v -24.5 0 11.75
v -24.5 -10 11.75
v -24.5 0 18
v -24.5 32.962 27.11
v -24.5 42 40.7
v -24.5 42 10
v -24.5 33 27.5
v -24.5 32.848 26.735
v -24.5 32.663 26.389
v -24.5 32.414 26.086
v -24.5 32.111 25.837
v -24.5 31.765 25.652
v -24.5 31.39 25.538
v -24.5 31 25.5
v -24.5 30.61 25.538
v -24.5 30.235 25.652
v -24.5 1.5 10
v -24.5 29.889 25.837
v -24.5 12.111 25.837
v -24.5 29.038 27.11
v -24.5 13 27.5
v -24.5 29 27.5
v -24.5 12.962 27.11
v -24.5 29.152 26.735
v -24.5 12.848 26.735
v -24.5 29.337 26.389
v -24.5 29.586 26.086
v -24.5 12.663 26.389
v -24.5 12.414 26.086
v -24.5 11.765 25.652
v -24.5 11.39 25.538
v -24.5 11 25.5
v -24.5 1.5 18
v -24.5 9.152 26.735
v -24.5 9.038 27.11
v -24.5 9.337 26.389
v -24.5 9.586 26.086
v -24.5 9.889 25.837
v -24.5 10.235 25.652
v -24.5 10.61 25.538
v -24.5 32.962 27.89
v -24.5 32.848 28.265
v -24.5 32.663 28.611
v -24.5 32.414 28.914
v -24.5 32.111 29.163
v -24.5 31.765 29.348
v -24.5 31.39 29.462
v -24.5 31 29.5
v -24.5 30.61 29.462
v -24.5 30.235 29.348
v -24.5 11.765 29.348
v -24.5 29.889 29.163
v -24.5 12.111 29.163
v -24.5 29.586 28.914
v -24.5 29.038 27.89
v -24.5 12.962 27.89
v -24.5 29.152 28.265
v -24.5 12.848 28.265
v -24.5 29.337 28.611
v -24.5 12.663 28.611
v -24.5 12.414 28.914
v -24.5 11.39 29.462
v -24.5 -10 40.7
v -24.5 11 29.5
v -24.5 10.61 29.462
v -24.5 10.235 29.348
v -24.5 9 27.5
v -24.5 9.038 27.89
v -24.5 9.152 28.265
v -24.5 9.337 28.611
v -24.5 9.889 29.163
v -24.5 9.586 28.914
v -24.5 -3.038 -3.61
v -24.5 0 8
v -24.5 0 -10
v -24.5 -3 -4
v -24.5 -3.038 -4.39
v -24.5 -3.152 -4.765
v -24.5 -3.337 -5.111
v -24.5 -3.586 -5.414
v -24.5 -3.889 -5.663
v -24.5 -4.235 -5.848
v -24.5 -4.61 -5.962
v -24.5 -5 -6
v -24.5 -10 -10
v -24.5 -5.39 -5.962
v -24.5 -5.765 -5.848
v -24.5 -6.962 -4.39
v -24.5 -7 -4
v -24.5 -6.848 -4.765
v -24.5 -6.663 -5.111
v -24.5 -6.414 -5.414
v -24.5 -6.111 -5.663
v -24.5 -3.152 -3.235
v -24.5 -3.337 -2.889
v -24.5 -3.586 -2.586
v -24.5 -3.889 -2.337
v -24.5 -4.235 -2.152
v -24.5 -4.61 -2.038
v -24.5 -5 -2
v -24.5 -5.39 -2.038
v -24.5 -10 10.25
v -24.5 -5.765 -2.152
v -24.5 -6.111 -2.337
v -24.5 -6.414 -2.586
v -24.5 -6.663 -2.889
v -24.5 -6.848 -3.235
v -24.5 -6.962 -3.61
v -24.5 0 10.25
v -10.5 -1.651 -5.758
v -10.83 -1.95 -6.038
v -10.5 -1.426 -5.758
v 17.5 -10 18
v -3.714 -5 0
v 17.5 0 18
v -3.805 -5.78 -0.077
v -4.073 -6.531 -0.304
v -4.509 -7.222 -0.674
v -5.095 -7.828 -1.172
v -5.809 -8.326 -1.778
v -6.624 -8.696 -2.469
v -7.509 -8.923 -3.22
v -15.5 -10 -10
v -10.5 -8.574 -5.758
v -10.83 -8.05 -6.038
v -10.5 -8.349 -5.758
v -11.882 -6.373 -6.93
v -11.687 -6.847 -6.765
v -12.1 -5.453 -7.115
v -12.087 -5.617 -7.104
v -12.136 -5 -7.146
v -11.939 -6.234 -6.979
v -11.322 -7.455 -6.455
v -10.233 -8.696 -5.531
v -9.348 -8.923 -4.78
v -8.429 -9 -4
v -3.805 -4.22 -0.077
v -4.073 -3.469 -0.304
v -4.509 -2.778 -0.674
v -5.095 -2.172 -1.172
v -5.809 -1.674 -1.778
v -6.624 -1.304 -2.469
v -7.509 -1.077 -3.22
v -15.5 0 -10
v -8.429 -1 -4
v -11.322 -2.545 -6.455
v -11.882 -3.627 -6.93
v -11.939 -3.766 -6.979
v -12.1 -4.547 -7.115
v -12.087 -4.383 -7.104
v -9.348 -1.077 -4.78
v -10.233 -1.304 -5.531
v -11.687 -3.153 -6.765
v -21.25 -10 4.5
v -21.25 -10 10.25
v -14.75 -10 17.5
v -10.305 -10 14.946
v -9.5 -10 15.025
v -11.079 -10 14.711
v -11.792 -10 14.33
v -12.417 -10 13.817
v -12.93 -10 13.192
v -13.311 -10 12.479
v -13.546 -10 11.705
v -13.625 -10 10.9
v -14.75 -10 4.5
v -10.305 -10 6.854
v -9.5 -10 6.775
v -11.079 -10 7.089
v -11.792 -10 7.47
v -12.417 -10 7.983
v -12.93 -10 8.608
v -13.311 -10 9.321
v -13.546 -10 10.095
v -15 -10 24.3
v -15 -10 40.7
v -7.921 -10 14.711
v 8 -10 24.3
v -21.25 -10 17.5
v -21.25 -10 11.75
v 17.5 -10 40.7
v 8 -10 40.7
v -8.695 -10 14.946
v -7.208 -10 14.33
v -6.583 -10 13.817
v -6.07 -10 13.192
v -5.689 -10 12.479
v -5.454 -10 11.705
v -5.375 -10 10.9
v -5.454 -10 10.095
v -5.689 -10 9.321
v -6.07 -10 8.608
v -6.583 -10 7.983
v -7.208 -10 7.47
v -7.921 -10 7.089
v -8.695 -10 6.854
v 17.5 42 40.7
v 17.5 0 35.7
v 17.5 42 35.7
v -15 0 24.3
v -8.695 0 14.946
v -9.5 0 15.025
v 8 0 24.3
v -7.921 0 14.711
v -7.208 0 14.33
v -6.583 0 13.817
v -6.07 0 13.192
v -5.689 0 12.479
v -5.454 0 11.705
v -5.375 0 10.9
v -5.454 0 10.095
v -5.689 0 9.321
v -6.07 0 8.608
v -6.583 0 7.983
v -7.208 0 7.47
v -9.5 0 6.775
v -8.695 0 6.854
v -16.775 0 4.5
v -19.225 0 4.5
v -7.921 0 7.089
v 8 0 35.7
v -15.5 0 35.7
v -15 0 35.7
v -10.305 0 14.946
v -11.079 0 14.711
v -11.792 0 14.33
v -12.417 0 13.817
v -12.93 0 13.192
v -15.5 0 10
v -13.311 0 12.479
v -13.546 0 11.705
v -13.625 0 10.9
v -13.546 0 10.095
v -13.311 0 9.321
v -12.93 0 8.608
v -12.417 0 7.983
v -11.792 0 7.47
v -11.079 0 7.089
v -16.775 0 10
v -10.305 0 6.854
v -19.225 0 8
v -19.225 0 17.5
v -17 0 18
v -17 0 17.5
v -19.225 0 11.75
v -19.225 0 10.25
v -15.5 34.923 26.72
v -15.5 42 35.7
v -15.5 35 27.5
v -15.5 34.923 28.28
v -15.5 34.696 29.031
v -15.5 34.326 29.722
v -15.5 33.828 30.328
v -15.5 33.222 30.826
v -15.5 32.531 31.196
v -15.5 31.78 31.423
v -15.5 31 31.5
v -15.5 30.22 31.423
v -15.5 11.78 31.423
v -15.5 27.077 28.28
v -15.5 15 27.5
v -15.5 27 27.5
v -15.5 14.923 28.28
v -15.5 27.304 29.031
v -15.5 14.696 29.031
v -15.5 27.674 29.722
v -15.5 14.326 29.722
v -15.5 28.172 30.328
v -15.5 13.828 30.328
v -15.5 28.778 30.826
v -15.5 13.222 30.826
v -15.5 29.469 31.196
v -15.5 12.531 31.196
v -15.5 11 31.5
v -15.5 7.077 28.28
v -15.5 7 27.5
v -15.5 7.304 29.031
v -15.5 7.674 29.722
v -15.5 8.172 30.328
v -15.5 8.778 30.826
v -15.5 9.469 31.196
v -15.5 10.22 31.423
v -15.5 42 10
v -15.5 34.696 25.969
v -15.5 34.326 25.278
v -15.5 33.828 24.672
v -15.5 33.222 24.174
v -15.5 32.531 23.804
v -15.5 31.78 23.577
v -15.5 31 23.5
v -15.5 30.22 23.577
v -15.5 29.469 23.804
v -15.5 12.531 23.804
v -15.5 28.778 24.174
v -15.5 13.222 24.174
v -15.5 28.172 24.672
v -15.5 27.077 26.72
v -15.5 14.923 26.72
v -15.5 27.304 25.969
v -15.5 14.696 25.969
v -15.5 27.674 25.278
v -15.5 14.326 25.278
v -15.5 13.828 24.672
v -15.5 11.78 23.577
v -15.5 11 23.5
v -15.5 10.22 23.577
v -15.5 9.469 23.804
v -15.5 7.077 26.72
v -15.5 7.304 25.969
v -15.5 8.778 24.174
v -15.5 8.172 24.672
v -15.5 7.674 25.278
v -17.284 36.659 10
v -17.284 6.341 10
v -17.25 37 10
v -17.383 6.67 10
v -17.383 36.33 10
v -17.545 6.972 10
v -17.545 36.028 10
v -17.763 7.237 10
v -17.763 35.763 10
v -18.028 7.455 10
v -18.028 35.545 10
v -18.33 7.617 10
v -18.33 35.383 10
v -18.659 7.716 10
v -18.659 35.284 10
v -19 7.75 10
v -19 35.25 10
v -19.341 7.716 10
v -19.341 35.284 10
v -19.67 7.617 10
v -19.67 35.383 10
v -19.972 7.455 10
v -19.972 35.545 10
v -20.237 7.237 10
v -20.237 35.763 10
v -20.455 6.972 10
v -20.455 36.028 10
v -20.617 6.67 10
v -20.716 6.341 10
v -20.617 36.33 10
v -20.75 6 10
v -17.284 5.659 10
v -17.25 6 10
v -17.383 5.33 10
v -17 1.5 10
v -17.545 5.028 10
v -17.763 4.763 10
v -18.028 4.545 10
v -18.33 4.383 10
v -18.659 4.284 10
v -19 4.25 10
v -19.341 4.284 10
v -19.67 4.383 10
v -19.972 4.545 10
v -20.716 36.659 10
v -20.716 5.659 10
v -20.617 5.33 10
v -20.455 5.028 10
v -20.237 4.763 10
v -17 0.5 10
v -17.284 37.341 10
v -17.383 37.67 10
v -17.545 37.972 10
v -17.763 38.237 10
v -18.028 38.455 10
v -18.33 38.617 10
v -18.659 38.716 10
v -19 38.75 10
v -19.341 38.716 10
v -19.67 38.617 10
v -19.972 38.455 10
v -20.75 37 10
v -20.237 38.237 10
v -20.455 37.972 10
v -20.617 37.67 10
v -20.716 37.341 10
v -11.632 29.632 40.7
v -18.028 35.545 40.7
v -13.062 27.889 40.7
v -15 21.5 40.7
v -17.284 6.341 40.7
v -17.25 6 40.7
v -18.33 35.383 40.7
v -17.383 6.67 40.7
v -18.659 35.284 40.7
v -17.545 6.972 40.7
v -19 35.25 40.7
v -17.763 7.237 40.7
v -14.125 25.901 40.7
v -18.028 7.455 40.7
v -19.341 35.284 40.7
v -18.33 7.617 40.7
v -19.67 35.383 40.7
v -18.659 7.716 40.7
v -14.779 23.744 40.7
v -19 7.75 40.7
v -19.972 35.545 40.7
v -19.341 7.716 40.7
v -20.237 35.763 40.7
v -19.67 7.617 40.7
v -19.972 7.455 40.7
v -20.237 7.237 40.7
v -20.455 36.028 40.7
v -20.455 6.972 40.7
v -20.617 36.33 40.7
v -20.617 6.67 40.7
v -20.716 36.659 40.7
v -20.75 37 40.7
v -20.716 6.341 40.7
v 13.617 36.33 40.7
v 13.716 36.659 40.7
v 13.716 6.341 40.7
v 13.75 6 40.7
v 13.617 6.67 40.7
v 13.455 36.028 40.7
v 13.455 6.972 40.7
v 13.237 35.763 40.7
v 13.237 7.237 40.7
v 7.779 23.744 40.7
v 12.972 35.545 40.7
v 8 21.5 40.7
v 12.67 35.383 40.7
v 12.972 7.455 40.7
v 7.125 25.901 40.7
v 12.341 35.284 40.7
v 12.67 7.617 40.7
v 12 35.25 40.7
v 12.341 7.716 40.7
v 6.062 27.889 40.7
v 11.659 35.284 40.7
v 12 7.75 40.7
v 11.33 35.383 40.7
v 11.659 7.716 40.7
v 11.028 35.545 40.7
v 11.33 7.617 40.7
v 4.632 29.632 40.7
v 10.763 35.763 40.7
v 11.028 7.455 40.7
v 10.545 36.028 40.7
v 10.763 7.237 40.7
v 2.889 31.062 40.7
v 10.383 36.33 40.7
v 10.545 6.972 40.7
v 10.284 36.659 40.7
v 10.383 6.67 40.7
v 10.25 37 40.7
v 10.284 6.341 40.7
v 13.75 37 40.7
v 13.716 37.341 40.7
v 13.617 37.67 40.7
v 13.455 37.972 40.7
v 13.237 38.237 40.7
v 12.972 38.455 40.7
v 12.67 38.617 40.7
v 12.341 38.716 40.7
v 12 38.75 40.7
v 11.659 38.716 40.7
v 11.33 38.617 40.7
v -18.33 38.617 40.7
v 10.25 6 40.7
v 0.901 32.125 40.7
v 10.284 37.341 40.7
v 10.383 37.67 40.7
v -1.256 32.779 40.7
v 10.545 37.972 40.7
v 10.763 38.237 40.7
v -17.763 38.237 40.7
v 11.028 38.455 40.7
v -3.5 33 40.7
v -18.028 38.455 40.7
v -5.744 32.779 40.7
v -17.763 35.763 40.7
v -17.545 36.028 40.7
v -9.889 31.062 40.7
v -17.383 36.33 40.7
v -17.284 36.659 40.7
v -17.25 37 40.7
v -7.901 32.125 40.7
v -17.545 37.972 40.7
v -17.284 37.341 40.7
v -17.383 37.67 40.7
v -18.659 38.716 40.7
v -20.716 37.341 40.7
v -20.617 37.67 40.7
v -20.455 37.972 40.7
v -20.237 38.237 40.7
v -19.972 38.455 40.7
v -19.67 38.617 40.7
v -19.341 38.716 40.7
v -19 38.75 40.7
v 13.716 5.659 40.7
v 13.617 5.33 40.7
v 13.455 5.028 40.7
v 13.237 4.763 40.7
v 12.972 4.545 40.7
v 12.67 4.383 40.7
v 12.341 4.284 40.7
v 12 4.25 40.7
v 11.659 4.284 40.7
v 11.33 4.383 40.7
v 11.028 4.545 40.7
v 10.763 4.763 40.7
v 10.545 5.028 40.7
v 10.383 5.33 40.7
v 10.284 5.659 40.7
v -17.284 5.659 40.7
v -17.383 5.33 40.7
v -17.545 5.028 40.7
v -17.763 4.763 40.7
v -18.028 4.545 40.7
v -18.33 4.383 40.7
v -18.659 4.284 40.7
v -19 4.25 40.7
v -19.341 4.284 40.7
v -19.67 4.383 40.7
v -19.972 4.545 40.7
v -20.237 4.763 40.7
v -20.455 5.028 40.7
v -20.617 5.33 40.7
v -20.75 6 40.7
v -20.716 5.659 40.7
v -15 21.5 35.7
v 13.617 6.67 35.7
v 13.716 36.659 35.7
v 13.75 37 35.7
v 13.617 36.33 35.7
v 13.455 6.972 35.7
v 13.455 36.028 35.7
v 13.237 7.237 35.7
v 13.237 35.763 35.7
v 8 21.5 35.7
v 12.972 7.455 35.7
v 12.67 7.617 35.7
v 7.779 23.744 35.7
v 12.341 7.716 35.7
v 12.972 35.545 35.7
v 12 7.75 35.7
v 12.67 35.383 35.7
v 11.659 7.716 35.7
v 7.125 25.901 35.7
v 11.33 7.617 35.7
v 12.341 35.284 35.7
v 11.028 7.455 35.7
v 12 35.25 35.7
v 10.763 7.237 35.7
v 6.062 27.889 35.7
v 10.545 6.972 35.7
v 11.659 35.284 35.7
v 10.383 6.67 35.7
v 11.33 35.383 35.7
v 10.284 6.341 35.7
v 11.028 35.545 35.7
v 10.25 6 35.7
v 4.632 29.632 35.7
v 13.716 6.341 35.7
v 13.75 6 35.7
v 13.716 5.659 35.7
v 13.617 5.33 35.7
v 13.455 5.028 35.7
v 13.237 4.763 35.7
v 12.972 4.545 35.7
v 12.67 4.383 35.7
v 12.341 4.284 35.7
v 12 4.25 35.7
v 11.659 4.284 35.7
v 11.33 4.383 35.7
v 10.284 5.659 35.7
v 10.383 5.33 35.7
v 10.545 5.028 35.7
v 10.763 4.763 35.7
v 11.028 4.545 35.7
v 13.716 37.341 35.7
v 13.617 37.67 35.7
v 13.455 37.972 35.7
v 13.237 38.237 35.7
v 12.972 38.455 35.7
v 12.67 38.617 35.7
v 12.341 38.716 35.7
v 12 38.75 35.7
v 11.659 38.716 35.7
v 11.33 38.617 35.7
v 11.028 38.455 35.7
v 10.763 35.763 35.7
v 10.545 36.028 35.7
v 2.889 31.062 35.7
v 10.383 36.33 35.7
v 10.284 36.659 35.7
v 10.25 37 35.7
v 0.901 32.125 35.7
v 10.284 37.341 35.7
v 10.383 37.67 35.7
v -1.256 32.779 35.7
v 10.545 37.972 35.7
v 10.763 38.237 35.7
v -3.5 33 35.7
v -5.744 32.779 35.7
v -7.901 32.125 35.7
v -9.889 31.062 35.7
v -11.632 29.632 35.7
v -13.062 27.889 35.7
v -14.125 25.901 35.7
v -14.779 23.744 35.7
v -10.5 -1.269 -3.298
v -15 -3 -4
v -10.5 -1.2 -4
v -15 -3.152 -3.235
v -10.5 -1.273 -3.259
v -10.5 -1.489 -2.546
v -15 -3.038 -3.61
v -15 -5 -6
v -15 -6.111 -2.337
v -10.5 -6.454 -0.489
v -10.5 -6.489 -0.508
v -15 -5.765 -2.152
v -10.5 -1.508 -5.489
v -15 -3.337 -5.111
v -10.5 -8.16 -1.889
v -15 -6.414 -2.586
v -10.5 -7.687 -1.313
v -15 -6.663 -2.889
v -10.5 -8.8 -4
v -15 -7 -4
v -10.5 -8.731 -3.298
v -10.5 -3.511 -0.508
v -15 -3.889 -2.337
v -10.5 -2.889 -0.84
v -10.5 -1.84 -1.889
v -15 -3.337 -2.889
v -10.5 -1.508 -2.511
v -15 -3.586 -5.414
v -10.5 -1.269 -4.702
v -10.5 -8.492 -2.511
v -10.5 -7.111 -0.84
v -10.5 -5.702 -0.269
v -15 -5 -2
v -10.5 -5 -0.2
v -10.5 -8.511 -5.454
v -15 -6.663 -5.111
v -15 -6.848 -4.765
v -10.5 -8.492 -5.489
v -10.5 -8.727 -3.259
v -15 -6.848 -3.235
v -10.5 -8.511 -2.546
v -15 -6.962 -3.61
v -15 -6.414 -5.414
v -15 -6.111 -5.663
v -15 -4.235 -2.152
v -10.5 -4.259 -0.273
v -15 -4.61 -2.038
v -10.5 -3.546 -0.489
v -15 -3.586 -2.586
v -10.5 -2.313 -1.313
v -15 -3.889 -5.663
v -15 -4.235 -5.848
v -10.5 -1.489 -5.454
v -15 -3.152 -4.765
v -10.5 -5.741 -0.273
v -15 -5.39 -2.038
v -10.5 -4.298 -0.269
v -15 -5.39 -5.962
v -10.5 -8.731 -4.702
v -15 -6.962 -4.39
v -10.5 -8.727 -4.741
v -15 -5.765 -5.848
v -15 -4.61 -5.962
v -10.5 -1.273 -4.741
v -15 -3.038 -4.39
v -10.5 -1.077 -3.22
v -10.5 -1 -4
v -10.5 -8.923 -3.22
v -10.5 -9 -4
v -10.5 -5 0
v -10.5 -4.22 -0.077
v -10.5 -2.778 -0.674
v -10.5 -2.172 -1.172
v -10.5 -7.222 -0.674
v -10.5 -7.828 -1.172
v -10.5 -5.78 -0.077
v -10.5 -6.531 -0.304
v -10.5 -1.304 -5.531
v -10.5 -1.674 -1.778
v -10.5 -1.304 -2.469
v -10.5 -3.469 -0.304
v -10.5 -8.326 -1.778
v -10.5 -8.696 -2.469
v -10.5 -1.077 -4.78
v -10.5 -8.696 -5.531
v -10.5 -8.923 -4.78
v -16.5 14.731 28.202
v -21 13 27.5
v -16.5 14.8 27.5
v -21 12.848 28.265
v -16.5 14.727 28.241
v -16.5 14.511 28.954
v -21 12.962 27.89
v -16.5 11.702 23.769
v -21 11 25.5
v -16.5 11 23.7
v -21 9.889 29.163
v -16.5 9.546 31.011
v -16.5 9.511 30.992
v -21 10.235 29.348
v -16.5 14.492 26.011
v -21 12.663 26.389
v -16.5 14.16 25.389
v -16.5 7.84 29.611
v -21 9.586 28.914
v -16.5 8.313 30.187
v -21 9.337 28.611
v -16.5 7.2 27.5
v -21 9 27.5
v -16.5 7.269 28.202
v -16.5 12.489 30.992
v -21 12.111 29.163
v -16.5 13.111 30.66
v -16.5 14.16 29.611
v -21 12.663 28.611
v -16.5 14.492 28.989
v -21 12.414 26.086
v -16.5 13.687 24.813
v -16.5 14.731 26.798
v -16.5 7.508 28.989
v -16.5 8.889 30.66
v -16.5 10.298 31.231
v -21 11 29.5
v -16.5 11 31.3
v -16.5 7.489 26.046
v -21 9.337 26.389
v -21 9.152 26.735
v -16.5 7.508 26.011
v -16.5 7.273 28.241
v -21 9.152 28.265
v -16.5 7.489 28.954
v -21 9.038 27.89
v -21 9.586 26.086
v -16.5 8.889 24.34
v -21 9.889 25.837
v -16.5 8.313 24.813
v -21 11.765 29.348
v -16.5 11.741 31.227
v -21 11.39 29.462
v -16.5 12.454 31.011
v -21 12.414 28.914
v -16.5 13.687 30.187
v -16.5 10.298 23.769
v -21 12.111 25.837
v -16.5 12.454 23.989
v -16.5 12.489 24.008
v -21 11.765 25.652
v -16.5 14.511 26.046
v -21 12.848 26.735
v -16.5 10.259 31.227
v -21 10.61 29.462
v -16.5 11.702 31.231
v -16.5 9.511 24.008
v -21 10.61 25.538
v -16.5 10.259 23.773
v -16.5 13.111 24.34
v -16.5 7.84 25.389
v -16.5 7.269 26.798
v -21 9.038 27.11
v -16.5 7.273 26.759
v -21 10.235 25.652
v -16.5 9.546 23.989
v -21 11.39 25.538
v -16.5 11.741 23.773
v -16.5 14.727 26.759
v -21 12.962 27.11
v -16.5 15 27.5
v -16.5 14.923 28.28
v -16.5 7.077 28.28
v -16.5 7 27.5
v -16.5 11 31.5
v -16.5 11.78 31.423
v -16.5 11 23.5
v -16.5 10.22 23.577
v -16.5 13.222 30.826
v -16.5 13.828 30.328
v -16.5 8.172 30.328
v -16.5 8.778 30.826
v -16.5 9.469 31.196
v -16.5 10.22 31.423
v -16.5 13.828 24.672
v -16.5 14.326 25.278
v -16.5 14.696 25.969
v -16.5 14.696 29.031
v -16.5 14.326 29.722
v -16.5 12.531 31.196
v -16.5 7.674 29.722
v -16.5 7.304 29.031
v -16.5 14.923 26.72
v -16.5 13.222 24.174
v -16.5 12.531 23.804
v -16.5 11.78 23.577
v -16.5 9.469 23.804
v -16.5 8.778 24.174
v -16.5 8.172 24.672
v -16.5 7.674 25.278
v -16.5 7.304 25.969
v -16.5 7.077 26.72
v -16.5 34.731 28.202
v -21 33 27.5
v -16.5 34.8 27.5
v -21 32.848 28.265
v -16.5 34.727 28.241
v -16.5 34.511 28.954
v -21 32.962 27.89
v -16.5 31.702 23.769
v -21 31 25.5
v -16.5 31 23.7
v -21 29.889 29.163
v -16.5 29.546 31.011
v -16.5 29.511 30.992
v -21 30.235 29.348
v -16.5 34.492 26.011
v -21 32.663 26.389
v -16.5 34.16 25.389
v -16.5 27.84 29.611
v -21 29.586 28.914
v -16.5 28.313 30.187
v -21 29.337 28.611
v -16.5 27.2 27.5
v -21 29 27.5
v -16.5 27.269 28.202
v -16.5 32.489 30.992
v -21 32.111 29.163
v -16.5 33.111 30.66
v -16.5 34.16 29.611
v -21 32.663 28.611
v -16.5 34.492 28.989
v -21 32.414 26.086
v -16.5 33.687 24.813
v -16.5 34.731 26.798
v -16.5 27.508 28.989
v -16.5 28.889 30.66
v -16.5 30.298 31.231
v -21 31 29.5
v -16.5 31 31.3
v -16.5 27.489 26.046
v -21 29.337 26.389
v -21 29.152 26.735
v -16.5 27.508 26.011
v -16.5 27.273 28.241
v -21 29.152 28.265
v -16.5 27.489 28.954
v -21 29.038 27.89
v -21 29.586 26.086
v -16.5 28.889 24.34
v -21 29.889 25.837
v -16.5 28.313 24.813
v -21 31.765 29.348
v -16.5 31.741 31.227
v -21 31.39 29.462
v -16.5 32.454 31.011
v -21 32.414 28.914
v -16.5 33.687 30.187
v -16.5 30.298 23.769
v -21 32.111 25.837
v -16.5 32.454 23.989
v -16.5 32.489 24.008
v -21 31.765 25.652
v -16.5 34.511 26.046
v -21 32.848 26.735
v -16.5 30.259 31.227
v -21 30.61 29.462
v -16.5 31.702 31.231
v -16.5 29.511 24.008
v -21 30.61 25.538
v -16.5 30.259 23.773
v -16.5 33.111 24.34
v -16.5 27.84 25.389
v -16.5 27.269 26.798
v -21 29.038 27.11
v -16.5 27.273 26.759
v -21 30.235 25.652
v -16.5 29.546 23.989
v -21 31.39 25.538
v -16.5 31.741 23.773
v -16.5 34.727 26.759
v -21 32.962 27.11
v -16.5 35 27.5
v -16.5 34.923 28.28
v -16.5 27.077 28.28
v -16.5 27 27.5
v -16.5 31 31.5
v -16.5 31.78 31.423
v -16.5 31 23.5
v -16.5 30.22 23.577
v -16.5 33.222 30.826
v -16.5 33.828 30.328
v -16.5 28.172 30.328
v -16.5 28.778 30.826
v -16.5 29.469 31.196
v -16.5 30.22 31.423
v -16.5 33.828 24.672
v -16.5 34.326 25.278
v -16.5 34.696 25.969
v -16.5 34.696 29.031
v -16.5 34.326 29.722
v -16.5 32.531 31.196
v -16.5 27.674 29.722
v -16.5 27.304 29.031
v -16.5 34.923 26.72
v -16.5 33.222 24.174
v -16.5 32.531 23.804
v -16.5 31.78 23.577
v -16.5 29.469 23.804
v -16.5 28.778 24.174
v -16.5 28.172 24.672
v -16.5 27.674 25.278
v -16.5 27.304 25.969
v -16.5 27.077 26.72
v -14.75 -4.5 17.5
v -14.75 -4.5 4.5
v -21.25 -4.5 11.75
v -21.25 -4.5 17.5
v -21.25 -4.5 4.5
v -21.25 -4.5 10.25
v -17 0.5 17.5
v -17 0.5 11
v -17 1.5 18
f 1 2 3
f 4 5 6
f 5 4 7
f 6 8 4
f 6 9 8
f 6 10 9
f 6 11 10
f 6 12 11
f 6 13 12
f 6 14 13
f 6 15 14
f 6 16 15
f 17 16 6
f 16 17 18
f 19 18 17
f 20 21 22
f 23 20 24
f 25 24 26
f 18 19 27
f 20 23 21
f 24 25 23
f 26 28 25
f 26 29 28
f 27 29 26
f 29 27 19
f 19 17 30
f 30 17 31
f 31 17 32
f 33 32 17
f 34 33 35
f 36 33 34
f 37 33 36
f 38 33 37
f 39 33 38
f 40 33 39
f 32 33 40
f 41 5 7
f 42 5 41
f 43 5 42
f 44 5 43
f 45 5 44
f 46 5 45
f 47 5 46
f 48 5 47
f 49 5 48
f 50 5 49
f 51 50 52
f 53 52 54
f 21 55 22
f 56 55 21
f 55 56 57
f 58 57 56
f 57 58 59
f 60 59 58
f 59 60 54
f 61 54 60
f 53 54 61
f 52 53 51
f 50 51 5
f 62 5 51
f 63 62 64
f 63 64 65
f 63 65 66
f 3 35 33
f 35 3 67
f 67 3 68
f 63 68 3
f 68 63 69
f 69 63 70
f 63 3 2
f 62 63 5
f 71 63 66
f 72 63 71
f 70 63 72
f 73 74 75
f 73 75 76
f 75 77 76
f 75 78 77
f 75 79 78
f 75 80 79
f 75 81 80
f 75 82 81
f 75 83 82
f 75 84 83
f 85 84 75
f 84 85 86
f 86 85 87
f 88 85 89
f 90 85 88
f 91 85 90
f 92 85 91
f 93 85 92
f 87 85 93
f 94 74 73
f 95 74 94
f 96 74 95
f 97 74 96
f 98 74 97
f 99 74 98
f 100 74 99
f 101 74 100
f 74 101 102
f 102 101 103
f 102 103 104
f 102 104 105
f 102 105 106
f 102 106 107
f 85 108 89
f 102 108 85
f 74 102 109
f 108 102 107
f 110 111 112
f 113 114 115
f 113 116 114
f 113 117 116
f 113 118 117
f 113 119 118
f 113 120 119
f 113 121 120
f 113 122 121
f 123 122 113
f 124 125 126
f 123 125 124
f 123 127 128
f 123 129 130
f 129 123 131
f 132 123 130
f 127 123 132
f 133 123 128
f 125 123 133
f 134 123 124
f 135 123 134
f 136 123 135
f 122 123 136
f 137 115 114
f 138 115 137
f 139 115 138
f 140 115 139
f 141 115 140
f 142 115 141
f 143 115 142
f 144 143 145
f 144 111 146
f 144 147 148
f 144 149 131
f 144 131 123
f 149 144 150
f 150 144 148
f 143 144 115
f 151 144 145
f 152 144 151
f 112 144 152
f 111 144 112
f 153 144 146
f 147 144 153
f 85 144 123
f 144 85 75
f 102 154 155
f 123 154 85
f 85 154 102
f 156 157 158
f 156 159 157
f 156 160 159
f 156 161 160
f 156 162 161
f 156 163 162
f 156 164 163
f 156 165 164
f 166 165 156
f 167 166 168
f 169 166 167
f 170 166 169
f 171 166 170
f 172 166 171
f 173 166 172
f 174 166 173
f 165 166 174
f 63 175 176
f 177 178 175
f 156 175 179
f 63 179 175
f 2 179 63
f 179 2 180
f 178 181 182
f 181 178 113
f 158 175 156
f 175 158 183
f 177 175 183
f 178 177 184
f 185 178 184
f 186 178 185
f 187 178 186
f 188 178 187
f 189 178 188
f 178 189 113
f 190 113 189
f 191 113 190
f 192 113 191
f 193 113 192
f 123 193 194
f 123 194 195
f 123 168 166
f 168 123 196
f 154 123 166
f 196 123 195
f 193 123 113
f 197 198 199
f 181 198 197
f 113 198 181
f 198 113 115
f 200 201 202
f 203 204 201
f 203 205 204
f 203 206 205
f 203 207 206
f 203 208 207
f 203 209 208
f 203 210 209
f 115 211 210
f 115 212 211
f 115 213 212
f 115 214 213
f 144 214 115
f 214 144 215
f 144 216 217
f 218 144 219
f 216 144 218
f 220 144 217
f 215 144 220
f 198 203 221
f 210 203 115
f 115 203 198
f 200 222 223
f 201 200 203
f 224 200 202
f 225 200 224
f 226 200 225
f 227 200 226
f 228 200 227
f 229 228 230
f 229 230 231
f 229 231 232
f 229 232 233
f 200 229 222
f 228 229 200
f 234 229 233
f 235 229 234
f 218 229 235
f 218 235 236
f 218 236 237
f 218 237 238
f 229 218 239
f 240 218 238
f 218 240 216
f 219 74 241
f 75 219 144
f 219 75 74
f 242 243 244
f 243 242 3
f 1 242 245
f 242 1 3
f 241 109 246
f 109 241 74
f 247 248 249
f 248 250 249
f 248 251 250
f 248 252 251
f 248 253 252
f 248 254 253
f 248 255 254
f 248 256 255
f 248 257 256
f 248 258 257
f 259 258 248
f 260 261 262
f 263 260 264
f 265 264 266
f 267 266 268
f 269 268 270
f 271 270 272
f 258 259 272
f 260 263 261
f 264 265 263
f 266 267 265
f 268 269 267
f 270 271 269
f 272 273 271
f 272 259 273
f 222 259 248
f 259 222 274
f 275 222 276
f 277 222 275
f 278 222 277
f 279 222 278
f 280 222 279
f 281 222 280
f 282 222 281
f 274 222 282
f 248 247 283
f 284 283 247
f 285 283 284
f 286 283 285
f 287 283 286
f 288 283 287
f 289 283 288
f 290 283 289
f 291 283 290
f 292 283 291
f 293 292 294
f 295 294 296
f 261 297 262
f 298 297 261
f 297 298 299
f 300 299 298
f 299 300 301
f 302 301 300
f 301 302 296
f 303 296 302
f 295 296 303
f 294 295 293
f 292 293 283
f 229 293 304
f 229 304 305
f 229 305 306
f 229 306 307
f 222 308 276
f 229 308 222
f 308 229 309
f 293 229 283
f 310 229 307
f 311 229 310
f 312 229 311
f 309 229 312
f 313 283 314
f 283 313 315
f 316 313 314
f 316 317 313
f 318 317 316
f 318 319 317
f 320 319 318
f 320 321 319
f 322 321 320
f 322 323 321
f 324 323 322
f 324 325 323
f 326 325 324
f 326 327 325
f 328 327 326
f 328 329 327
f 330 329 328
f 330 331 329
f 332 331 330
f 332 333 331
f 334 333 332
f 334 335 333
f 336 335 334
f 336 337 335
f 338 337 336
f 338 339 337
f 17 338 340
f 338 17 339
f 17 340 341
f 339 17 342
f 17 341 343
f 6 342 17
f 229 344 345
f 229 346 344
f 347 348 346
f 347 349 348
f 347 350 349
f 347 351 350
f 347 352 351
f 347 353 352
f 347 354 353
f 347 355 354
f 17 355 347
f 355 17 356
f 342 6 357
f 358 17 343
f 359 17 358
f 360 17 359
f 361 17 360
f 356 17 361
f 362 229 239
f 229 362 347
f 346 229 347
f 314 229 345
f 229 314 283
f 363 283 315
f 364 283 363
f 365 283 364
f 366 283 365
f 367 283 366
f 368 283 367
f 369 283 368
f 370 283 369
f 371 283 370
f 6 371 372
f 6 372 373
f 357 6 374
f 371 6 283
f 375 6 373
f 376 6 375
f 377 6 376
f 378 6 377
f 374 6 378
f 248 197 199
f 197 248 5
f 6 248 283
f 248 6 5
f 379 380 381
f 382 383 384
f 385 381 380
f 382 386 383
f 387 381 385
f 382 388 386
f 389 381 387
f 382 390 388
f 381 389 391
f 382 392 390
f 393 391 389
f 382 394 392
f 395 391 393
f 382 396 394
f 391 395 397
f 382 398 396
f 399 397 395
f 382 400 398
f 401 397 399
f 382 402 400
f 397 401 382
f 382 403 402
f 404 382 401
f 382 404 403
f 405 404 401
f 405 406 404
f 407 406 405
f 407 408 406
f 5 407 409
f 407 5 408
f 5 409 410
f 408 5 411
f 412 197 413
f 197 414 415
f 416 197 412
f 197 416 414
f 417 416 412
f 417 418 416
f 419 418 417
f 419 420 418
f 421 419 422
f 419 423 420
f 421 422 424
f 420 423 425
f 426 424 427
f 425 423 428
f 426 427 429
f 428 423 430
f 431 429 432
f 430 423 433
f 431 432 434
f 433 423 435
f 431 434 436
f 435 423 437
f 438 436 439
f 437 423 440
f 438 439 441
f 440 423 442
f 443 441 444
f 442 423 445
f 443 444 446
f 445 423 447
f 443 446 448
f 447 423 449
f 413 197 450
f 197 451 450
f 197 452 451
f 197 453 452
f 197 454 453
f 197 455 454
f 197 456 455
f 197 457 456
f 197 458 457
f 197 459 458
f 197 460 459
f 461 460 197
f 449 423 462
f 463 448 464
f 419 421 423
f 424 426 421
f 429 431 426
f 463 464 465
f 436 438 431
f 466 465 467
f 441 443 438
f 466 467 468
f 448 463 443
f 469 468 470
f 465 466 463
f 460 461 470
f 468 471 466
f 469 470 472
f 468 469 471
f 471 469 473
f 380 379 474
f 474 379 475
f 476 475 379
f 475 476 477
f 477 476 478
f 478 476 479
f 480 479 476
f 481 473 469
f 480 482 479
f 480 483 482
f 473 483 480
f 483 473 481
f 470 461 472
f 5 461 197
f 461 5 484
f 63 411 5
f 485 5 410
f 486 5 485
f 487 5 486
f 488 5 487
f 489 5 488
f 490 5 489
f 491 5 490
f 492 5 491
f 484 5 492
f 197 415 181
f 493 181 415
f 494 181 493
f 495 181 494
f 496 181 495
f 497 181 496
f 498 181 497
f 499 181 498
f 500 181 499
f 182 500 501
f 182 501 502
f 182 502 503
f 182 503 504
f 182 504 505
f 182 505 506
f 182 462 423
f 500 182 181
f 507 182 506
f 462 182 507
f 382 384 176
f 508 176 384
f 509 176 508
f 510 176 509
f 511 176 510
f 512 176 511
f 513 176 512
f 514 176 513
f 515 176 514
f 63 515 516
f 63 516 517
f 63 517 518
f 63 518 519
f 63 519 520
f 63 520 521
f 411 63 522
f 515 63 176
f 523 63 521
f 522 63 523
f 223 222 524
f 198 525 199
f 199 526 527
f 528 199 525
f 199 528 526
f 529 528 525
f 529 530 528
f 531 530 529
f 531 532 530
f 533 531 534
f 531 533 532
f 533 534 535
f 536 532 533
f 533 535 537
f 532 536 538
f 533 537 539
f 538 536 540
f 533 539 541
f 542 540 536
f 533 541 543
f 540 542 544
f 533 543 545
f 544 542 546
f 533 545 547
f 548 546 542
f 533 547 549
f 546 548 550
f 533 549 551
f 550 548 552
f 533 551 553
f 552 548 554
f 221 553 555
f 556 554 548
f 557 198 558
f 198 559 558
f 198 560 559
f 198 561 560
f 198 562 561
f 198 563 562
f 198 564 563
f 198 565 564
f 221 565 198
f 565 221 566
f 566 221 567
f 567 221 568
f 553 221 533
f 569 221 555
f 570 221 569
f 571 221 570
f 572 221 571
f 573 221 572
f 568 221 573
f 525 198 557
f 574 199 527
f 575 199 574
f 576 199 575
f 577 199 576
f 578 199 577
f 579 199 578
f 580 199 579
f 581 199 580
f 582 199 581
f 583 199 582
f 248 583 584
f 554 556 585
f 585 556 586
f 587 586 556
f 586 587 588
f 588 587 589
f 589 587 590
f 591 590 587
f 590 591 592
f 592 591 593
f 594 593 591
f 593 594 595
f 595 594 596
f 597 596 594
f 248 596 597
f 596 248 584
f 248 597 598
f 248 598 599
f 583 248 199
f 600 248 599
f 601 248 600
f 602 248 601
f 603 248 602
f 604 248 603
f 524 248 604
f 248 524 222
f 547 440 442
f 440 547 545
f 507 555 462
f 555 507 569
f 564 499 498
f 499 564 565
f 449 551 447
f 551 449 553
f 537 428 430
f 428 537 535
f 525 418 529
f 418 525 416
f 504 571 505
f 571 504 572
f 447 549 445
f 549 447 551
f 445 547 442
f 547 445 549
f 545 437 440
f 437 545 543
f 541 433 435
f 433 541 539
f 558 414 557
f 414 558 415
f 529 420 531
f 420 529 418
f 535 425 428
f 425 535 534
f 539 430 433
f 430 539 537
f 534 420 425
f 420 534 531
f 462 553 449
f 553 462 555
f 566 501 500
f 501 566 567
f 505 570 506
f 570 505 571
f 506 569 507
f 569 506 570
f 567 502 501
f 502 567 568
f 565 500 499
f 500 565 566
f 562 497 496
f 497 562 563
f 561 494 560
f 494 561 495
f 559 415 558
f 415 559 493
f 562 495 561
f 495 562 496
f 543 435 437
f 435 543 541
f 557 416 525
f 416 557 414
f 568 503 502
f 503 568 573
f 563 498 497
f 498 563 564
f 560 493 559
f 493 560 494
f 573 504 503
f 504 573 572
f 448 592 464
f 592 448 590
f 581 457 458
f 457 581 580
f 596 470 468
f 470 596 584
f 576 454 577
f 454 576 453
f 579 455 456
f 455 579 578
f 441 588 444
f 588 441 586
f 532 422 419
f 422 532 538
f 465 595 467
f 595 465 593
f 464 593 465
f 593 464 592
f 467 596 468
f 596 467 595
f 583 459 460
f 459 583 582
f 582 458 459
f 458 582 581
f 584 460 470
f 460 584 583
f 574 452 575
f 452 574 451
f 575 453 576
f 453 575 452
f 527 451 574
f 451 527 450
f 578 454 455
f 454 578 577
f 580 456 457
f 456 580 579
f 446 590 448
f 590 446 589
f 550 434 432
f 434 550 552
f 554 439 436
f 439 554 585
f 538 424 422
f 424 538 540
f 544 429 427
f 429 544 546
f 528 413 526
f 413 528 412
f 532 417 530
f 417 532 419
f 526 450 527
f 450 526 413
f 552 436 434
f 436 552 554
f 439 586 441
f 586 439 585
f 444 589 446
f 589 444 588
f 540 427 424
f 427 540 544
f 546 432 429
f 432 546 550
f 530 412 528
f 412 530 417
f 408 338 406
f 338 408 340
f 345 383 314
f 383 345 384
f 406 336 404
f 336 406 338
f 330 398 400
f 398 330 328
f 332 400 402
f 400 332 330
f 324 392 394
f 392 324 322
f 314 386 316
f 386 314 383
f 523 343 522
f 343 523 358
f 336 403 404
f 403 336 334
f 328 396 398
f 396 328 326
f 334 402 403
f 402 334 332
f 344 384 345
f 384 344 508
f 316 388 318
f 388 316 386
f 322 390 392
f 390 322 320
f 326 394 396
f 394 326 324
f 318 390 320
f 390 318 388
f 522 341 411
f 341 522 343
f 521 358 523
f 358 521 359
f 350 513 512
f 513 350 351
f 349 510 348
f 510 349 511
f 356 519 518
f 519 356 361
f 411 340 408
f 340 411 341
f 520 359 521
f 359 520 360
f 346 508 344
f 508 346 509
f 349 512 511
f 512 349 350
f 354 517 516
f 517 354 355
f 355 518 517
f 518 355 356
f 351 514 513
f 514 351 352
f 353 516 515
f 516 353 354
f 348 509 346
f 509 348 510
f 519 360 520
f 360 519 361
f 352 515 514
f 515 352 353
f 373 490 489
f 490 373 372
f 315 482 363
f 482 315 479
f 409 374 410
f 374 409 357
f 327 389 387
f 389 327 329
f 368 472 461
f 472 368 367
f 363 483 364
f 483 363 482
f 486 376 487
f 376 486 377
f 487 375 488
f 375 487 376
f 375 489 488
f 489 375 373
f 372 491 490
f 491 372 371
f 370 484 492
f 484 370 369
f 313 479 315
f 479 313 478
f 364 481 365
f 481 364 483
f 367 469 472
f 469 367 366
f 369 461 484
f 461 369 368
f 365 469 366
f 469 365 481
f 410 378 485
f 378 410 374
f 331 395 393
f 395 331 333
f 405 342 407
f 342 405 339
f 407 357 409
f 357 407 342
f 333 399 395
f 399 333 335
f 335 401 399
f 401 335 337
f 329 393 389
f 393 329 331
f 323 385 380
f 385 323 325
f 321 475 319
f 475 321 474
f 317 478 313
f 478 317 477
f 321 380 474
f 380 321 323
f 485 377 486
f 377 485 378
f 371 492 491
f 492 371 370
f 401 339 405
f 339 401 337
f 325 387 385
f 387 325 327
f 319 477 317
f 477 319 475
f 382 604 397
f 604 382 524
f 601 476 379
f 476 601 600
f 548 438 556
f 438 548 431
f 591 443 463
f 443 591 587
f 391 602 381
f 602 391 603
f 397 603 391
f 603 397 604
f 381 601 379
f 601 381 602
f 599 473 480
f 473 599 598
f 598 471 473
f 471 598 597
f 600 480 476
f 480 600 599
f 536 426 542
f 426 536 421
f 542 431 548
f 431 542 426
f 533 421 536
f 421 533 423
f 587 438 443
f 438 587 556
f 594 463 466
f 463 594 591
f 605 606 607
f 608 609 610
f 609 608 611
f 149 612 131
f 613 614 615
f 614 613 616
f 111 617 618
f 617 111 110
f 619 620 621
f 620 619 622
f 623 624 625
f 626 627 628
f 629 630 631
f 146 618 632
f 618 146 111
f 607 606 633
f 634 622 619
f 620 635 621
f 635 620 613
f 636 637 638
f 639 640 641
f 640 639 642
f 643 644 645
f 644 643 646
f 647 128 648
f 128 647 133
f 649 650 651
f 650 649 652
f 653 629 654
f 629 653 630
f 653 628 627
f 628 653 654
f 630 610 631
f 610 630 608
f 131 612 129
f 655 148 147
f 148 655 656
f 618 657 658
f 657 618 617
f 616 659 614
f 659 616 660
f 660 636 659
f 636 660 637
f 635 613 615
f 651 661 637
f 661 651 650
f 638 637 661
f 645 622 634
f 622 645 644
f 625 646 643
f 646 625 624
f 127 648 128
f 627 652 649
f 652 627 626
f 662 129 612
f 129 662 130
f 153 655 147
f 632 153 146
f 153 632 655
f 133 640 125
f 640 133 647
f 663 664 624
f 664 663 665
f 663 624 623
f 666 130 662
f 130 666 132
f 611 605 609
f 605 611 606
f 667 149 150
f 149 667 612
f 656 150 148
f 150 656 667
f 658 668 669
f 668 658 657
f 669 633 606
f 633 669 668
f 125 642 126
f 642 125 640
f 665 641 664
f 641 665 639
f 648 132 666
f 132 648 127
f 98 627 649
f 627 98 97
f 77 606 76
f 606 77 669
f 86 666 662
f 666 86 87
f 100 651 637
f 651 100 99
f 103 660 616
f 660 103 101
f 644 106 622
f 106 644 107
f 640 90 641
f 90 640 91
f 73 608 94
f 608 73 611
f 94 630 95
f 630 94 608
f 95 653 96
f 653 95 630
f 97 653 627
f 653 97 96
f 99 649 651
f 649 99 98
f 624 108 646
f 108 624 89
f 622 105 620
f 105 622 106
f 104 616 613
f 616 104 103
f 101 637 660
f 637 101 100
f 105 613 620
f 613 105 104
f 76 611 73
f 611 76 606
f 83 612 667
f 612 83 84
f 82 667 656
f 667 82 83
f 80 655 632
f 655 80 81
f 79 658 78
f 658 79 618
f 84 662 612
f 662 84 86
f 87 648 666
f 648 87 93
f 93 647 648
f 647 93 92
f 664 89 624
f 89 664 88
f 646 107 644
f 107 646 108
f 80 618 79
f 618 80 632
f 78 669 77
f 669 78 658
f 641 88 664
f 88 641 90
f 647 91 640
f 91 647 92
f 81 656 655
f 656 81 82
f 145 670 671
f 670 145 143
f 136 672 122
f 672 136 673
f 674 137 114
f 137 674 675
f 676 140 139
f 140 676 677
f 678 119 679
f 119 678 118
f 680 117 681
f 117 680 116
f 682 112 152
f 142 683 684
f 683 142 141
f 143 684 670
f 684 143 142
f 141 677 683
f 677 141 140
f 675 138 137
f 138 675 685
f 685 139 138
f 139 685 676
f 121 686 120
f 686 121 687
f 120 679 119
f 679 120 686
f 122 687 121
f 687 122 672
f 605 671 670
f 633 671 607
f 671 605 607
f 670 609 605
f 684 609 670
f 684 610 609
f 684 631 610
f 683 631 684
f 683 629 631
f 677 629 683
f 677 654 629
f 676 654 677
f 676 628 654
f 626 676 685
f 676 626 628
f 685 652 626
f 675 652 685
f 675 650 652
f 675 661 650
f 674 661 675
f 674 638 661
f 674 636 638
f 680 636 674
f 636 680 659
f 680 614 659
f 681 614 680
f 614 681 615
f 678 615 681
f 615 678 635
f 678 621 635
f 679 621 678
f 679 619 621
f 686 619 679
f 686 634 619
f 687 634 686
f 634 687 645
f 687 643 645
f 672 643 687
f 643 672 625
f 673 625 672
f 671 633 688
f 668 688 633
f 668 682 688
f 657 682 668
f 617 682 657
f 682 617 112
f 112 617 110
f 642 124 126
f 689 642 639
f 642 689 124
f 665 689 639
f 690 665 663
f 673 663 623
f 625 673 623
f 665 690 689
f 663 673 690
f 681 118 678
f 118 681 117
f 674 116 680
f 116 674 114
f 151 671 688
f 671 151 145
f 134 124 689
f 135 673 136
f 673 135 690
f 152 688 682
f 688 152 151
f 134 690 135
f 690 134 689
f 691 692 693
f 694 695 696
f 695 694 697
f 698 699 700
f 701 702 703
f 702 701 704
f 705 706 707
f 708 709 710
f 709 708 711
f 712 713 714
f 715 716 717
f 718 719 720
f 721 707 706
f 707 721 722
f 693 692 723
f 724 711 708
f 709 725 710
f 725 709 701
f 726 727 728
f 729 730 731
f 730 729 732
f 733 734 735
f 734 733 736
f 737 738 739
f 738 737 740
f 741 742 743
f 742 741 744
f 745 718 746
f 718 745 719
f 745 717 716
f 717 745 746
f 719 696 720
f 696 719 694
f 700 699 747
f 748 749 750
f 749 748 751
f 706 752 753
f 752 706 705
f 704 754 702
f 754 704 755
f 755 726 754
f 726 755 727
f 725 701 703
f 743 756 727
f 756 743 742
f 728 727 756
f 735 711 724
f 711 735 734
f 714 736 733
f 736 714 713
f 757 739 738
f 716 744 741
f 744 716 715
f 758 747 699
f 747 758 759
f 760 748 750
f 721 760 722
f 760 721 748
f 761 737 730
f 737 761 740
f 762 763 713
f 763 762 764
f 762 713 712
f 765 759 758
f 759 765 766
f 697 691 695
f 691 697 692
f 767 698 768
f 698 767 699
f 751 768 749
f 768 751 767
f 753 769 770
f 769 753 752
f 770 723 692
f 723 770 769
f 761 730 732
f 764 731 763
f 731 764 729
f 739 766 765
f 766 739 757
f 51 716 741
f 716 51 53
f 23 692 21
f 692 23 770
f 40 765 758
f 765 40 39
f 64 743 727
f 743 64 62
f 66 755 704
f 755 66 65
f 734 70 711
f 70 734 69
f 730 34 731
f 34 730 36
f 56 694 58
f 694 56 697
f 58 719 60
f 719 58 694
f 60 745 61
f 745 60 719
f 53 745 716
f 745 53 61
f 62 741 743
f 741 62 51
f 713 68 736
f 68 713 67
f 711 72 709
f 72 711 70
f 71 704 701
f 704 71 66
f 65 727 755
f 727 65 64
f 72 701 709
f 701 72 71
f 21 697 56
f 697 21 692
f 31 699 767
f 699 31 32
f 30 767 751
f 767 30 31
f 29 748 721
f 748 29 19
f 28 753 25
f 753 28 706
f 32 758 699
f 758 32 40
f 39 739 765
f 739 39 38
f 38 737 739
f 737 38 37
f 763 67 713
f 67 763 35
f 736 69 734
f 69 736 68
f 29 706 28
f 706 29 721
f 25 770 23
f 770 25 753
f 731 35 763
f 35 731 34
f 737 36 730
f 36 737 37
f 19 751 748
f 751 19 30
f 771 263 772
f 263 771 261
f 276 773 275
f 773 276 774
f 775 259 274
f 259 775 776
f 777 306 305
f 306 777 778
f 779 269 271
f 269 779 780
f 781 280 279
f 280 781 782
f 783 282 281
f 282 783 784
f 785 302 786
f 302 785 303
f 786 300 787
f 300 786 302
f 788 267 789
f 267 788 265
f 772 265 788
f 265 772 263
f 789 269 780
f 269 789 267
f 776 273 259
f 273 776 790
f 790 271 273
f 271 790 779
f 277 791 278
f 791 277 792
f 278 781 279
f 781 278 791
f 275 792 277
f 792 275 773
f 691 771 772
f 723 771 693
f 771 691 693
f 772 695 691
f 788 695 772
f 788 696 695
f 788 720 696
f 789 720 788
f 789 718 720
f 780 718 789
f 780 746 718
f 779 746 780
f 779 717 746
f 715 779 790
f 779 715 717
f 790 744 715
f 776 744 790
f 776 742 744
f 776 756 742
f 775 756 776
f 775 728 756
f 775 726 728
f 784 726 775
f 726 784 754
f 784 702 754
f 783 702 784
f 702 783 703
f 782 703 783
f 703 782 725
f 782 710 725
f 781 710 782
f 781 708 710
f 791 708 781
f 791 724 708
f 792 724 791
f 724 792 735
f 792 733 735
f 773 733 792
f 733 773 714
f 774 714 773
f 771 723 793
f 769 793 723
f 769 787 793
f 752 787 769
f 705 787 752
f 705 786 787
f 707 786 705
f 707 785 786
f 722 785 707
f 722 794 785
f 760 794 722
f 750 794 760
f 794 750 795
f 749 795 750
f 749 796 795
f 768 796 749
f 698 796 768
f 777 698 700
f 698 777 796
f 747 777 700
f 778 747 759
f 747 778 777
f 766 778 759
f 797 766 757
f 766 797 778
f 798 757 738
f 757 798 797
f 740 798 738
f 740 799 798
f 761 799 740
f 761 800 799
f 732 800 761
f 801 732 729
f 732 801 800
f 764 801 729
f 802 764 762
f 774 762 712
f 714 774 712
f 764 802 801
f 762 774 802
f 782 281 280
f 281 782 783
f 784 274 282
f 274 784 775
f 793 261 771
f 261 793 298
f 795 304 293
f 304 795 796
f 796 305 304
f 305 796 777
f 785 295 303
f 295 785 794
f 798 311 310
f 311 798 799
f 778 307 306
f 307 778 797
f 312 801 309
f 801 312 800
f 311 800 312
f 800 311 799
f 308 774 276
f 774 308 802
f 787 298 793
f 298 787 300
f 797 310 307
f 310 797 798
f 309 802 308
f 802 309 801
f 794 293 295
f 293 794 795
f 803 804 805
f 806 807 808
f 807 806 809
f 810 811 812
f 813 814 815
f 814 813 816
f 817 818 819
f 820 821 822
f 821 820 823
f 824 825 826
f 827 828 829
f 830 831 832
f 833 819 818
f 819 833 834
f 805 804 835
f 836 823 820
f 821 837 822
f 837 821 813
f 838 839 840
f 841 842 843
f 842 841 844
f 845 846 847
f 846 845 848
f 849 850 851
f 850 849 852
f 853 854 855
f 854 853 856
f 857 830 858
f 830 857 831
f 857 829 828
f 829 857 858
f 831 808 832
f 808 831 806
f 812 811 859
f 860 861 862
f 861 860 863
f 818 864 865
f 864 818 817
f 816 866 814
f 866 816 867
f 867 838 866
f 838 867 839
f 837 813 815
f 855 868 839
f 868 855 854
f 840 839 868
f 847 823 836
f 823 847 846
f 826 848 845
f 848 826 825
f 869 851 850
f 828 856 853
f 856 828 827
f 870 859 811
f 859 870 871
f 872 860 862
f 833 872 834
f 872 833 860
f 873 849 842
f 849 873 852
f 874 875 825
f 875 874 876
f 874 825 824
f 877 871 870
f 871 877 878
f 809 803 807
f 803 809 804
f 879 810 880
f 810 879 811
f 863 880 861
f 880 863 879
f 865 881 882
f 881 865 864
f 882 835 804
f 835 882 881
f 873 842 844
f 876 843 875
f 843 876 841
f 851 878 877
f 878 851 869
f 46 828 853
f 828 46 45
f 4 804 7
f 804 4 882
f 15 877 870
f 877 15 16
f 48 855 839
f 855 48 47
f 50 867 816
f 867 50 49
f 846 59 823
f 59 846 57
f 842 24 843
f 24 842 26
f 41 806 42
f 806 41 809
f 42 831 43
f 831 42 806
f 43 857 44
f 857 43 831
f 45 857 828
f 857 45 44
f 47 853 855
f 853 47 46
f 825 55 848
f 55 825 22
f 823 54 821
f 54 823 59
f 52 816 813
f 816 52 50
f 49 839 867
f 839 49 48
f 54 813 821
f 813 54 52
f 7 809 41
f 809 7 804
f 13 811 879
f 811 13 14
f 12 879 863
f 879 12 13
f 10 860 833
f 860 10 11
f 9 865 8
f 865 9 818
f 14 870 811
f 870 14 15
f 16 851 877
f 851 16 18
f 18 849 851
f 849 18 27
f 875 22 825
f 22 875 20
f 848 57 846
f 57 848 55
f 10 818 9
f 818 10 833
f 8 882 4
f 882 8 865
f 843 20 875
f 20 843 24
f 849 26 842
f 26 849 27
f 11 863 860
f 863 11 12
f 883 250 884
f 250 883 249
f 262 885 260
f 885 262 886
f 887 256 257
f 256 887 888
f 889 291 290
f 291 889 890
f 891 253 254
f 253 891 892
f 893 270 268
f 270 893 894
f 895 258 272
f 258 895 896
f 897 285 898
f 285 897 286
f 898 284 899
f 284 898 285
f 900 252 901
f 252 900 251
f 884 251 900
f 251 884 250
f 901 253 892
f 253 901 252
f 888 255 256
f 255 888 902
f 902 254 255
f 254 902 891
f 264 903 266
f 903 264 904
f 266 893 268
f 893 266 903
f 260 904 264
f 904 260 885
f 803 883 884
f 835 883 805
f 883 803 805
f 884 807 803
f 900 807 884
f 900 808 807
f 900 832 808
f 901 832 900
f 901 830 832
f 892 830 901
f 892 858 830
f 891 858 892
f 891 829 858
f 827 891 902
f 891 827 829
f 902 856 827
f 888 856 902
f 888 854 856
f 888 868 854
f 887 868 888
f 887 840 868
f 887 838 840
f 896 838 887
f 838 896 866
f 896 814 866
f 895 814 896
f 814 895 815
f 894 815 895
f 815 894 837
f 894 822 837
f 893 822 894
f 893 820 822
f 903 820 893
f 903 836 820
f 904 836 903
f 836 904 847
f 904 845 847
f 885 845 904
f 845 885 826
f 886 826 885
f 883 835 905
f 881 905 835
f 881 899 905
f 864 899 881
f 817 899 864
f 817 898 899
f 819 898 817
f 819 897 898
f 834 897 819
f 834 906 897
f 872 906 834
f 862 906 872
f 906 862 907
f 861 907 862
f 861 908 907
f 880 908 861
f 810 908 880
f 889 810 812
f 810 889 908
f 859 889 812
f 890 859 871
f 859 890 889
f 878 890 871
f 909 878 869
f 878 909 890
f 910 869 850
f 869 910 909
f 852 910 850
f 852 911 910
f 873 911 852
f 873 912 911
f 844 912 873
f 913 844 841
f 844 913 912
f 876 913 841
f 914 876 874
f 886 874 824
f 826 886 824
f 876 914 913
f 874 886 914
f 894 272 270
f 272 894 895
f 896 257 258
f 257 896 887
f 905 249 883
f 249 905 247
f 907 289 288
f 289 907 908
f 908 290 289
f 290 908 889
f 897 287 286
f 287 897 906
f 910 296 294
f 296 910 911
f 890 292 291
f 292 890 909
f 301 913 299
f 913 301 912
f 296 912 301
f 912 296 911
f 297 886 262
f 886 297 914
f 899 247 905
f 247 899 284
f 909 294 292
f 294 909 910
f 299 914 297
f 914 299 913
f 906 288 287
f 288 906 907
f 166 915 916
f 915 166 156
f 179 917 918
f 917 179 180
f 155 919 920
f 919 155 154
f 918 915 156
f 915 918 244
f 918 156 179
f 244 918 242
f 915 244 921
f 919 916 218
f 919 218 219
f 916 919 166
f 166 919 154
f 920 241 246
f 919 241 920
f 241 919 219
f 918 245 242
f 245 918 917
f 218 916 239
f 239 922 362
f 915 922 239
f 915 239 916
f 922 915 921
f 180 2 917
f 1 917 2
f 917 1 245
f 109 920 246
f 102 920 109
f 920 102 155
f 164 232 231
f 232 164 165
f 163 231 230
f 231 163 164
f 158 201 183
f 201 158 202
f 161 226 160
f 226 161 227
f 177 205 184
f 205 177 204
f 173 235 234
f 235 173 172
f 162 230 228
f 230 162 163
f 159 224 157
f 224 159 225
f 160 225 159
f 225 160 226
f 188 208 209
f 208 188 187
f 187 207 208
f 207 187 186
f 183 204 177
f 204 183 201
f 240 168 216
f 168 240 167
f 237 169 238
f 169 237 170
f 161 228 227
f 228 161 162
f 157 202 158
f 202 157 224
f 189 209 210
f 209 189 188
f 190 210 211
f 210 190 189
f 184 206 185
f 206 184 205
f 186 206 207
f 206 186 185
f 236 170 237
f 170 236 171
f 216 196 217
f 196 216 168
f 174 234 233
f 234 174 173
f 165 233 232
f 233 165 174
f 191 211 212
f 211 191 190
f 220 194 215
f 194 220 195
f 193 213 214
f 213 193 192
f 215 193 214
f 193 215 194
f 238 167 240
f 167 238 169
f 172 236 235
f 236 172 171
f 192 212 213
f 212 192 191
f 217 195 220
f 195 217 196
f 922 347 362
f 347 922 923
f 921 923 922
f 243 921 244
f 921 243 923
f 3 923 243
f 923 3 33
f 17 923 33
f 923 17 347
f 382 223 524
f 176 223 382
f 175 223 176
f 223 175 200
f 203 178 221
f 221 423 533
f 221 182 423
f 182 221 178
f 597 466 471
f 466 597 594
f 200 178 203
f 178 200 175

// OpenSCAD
//mirror([1,0,0])translate([-21,0,0])color("red")import("./smartrapcore/XY_motor_right - XY_motor_right.stl");
$fn=32;

module tornillo(){
rotate([90,0,0]){
cylinder(r1=8/2,r2=4/2,h=5);
cylinder(r=4/2,h=50);
translate([0,0,-9.5-40])cylinder(r=8/2,h=50);
}
}
difference(){
mirror([1,0,0])
difference(){
union(){
hull(){
translate([15.5,-10,-10])cube([9,10,50]);
translate([-17.5,-10,18])cube([24.5,10,18]);

}
translate([15.5,-10,14])cube([9,10,16]);
translate([15.5,-10,14+5-9])cube([9,52,16-2+9+5]);
translate([-17.5,-10,33.2+2.5])cube([42,52,5]);
}


translate([-12,6,5]){
cylinder(r=3.5/2,h=50);
translate([0,31,0])cylinder(r=3.5/2,h=50);
translate([31,0,0])cylinder(r=3.5/2,h=50);
translate([31,31,0])cylinder(r=3.5/2,h=50);
translate([31/2,31/2,0])cylinder(r=23/2,h=50);
  
}

translate([9.5,5,10.9])rotate([90,0,0])cylinder(r=8.25/2,h=50);
translate([10,-5,-4])rotate([0,0,90])tornillo();
//translate([16,-5,24.5+3])rotate([0,0,90])tornillo();
translate([16,11,24.5+3])rotate([0,0,90])tornillo();
translate([16,11+20,24.5+3])rotate([0,0,90])tornillo();
translate([18,-13+6,11])rotate([0,180,0])endstop();
translate([17,0,8])cube([10,1.5,10]);
}
hull(){
translate([-3.5,21.5,20-6.2+13.5+6/3+5])color("red")cylinder(d=23,h=20,center=true);

translate([-3.5,-21.5,20-6.2+13.5+6/3+5])color("red")cylinder(d=23,h=20,center=true);
}
}
module endstop(){
rotate([90,0,0]){
hull(){
translate([0,0,2])cube([6.5,13,9],center=true);
translate([0,0,-5])cube([2,13,5],center=true);
}
translate([-5,0,0])cube([10,1.5,16],center=true);
}
}
